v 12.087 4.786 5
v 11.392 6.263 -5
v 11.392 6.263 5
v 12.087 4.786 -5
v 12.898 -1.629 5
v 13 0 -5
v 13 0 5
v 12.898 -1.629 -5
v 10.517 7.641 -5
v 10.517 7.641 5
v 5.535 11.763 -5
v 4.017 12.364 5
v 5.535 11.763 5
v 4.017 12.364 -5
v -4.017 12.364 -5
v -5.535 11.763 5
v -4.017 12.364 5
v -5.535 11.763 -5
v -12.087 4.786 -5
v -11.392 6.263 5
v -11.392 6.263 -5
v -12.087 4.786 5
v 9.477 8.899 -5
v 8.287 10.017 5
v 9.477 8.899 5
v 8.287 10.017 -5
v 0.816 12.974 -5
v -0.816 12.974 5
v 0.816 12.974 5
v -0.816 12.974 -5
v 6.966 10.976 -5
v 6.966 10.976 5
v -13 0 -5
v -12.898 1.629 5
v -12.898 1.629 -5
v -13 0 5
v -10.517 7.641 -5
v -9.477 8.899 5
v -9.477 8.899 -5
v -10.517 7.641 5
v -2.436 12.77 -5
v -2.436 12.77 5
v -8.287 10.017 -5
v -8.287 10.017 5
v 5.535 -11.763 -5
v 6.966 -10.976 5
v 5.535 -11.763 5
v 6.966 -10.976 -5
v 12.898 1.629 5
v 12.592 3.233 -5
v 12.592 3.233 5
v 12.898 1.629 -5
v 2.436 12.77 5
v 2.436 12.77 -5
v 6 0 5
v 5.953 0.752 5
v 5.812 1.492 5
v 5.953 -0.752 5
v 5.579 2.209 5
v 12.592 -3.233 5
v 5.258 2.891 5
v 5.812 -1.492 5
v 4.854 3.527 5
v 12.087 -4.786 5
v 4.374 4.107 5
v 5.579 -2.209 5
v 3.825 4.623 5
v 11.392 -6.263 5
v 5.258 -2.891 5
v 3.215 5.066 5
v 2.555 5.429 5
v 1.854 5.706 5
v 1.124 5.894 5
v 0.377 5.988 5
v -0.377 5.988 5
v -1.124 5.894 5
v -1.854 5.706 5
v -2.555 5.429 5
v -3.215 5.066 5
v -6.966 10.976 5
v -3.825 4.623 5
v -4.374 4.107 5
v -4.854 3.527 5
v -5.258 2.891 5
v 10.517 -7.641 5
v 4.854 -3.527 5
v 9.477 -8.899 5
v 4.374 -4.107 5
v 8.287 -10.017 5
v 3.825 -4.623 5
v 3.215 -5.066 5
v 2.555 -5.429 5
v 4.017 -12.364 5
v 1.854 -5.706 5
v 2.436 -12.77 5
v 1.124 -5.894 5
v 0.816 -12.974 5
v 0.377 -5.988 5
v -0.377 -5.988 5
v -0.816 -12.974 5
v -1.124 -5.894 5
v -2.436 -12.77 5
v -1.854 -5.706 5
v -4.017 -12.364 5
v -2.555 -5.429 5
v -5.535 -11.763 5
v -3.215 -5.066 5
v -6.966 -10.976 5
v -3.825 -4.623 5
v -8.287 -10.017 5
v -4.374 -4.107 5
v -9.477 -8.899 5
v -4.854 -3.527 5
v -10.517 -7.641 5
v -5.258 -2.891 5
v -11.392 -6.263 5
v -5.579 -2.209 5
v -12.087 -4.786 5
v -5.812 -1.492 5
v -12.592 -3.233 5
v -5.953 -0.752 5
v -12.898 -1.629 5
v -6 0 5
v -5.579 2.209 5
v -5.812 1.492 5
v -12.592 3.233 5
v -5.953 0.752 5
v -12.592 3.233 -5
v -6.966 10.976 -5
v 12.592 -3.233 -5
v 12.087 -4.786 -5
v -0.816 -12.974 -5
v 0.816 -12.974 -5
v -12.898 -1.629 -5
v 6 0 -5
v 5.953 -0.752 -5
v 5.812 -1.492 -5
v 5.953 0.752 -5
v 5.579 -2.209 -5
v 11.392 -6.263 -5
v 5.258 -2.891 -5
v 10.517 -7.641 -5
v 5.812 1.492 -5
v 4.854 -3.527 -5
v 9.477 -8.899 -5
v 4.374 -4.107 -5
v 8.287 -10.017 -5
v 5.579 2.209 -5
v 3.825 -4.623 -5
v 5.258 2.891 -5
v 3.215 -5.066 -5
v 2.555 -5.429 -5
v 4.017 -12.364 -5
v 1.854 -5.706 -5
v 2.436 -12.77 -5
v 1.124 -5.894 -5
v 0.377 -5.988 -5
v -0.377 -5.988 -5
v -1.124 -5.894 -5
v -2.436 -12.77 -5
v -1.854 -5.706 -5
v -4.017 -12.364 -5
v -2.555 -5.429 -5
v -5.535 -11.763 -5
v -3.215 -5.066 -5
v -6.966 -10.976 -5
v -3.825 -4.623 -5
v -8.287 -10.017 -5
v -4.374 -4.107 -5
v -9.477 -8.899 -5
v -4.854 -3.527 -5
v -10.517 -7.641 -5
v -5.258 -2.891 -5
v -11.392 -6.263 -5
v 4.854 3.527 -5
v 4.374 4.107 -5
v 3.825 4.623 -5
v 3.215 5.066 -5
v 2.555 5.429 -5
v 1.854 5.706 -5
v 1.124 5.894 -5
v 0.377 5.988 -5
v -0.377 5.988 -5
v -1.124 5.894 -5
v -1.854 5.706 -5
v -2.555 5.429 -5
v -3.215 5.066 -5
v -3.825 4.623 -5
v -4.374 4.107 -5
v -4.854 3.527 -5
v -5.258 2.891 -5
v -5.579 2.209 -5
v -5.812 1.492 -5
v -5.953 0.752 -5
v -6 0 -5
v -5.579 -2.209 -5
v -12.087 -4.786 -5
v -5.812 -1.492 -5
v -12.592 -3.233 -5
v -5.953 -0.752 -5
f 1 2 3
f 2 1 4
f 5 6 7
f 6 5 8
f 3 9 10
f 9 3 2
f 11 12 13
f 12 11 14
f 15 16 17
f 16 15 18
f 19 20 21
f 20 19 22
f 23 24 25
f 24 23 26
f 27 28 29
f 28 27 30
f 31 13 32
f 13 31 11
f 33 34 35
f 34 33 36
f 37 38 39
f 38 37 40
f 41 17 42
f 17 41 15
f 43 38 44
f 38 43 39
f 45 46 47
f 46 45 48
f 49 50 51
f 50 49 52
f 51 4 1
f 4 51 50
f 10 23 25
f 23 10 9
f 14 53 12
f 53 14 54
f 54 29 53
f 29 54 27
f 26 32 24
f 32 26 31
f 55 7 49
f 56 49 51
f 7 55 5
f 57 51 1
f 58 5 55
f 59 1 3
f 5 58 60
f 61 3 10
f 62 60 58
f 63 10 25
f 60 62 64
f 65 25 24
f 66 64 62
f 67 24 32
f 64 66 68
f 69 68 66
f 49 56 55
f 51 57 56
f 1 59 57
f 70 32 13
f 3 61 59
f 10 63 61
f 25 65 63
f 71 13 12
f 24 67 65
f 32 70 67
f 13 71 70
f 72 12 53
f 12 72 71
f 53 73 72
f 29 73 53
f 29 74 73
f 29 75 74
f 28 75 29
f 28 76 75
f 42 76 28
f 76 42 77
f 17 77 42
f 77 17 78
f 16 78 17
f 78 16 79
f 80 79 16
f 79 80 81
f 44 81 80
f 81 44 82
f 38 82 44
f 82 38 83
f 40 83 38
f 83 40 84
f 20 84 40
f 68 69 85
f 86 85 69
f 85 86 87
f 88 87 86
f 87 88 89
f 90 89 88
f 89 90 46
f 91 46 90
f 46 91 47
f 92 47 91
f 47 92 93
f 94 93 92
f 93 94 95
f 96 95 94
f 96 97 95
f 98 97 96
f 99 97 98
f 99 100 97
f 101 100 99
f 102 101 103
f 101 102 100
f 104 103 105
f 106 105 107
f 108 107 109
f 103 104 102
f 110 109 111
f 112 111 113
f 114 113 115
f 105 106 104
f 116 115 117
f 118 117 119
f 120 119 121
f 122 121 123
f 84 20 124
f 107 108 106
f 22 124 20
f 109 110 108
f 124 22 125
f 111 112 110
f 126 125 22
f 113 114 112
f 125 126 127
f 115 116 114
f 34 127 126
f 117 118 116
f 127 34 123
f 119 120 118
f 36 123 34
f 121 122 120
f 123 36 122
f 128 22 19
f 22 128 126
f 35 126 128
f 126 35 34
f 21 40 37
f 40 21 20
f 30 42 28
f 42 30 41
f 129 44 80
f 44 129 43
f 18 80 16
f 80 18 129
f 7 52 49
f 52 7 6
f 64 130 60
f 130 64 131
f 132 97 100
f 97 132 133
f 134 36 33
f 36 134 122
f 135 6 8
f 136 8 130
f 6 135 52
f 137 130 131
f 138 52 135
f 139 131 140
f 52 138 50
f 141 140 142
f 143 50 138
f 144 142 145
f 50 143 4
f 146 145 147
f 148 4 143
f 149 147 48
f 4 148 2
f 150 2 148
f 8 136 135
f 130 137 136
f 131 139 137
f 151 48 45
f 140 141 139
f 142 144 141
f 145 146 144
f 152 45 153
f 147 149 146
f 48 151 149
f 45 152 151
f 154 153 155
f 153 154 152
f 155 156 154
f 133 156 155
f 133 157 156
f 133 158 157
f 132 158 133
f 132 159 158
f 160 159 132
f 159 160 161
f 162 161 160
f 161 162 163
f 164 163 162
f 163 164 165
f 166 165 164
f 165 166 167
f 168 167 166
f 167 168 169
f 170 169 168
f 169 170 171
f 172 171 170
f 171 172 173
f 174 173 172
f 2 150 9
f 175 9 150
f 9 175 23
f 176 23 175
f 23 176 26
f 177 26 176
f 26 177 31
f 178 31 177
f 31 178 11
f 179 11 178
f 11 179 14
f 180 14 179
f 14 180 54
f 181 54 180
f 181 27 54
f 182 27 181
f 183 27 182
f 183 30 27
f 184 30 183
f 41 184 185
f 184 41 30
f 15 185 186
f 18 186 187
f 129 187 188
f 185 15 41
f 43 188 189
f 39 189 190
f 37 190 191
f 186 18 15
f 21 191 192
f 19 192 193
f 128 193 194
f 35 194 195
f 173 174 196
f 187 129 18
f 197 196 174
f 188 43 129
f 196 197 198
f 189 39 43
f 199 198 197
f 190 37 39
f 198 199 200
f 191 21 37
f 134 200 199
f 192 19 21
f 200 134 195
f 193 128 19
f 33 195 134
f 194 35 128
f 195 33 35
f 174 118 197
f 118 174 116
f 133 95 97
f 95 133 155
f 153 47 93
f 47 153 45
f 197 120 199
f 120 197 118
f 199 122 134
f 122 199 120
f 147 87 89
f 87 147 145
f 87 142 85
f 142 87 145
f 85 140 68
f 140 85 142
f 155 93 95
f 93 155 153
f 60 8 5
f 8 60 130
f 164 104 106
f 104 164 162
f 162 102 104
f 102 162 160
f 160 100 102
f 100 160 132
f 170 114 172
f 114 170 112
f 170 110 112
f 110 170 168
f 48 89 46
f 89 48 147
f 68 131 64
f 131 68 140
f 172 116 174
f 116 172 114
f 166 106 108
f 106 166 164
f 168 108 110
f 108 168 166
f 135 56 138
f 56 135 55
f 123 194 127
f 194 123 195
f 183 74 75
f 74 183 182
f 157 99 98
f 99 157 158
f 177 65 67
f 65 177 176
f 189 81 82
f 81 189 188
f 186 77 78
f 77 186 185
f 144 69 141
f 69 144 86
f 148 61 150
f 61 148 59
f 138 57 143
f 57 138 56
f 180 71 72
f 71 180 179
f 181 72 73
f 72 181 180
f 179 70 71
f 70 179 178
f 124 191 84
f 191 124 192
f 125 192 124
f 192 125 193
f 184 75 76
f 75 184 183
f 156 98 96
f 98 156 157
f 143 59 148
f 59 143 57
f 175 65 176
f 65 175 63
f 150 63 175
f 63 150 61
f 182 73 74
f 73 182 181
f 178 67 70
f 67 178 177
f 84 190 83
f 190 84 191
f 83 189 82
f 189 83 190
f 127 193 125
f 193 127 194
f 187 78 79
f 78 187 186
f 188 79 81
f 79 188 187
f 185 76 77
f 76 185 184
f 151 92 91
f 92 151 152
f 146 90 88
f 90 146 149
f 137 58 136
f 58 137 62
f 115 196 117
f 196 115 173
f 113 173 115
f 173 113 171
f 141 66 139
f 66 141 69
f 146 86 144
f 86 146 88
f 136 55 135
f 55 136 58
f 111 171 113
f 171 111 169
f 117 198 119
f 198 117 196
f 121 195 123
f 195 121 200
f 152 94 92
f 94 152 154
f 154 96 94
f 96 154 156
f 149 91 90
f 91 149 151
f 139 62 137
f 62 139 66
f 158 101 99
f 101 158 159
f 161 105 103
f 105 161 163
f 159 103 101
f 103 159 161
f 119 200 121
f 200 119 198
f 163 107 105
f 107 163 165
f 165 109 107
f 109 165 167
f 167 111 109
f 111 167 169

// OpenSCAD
$fn = 50;


difference() {
	union() {
		translate(v = [0, 0, -5.0000000000]) {
			cylinder(h = 10, r = 13.0000000000);
		}
	}
	union() {
		translate(v = [0, 0, -100.0000000000]) {
			cylinder(h = 200, r = 6);
		}
	}
}
